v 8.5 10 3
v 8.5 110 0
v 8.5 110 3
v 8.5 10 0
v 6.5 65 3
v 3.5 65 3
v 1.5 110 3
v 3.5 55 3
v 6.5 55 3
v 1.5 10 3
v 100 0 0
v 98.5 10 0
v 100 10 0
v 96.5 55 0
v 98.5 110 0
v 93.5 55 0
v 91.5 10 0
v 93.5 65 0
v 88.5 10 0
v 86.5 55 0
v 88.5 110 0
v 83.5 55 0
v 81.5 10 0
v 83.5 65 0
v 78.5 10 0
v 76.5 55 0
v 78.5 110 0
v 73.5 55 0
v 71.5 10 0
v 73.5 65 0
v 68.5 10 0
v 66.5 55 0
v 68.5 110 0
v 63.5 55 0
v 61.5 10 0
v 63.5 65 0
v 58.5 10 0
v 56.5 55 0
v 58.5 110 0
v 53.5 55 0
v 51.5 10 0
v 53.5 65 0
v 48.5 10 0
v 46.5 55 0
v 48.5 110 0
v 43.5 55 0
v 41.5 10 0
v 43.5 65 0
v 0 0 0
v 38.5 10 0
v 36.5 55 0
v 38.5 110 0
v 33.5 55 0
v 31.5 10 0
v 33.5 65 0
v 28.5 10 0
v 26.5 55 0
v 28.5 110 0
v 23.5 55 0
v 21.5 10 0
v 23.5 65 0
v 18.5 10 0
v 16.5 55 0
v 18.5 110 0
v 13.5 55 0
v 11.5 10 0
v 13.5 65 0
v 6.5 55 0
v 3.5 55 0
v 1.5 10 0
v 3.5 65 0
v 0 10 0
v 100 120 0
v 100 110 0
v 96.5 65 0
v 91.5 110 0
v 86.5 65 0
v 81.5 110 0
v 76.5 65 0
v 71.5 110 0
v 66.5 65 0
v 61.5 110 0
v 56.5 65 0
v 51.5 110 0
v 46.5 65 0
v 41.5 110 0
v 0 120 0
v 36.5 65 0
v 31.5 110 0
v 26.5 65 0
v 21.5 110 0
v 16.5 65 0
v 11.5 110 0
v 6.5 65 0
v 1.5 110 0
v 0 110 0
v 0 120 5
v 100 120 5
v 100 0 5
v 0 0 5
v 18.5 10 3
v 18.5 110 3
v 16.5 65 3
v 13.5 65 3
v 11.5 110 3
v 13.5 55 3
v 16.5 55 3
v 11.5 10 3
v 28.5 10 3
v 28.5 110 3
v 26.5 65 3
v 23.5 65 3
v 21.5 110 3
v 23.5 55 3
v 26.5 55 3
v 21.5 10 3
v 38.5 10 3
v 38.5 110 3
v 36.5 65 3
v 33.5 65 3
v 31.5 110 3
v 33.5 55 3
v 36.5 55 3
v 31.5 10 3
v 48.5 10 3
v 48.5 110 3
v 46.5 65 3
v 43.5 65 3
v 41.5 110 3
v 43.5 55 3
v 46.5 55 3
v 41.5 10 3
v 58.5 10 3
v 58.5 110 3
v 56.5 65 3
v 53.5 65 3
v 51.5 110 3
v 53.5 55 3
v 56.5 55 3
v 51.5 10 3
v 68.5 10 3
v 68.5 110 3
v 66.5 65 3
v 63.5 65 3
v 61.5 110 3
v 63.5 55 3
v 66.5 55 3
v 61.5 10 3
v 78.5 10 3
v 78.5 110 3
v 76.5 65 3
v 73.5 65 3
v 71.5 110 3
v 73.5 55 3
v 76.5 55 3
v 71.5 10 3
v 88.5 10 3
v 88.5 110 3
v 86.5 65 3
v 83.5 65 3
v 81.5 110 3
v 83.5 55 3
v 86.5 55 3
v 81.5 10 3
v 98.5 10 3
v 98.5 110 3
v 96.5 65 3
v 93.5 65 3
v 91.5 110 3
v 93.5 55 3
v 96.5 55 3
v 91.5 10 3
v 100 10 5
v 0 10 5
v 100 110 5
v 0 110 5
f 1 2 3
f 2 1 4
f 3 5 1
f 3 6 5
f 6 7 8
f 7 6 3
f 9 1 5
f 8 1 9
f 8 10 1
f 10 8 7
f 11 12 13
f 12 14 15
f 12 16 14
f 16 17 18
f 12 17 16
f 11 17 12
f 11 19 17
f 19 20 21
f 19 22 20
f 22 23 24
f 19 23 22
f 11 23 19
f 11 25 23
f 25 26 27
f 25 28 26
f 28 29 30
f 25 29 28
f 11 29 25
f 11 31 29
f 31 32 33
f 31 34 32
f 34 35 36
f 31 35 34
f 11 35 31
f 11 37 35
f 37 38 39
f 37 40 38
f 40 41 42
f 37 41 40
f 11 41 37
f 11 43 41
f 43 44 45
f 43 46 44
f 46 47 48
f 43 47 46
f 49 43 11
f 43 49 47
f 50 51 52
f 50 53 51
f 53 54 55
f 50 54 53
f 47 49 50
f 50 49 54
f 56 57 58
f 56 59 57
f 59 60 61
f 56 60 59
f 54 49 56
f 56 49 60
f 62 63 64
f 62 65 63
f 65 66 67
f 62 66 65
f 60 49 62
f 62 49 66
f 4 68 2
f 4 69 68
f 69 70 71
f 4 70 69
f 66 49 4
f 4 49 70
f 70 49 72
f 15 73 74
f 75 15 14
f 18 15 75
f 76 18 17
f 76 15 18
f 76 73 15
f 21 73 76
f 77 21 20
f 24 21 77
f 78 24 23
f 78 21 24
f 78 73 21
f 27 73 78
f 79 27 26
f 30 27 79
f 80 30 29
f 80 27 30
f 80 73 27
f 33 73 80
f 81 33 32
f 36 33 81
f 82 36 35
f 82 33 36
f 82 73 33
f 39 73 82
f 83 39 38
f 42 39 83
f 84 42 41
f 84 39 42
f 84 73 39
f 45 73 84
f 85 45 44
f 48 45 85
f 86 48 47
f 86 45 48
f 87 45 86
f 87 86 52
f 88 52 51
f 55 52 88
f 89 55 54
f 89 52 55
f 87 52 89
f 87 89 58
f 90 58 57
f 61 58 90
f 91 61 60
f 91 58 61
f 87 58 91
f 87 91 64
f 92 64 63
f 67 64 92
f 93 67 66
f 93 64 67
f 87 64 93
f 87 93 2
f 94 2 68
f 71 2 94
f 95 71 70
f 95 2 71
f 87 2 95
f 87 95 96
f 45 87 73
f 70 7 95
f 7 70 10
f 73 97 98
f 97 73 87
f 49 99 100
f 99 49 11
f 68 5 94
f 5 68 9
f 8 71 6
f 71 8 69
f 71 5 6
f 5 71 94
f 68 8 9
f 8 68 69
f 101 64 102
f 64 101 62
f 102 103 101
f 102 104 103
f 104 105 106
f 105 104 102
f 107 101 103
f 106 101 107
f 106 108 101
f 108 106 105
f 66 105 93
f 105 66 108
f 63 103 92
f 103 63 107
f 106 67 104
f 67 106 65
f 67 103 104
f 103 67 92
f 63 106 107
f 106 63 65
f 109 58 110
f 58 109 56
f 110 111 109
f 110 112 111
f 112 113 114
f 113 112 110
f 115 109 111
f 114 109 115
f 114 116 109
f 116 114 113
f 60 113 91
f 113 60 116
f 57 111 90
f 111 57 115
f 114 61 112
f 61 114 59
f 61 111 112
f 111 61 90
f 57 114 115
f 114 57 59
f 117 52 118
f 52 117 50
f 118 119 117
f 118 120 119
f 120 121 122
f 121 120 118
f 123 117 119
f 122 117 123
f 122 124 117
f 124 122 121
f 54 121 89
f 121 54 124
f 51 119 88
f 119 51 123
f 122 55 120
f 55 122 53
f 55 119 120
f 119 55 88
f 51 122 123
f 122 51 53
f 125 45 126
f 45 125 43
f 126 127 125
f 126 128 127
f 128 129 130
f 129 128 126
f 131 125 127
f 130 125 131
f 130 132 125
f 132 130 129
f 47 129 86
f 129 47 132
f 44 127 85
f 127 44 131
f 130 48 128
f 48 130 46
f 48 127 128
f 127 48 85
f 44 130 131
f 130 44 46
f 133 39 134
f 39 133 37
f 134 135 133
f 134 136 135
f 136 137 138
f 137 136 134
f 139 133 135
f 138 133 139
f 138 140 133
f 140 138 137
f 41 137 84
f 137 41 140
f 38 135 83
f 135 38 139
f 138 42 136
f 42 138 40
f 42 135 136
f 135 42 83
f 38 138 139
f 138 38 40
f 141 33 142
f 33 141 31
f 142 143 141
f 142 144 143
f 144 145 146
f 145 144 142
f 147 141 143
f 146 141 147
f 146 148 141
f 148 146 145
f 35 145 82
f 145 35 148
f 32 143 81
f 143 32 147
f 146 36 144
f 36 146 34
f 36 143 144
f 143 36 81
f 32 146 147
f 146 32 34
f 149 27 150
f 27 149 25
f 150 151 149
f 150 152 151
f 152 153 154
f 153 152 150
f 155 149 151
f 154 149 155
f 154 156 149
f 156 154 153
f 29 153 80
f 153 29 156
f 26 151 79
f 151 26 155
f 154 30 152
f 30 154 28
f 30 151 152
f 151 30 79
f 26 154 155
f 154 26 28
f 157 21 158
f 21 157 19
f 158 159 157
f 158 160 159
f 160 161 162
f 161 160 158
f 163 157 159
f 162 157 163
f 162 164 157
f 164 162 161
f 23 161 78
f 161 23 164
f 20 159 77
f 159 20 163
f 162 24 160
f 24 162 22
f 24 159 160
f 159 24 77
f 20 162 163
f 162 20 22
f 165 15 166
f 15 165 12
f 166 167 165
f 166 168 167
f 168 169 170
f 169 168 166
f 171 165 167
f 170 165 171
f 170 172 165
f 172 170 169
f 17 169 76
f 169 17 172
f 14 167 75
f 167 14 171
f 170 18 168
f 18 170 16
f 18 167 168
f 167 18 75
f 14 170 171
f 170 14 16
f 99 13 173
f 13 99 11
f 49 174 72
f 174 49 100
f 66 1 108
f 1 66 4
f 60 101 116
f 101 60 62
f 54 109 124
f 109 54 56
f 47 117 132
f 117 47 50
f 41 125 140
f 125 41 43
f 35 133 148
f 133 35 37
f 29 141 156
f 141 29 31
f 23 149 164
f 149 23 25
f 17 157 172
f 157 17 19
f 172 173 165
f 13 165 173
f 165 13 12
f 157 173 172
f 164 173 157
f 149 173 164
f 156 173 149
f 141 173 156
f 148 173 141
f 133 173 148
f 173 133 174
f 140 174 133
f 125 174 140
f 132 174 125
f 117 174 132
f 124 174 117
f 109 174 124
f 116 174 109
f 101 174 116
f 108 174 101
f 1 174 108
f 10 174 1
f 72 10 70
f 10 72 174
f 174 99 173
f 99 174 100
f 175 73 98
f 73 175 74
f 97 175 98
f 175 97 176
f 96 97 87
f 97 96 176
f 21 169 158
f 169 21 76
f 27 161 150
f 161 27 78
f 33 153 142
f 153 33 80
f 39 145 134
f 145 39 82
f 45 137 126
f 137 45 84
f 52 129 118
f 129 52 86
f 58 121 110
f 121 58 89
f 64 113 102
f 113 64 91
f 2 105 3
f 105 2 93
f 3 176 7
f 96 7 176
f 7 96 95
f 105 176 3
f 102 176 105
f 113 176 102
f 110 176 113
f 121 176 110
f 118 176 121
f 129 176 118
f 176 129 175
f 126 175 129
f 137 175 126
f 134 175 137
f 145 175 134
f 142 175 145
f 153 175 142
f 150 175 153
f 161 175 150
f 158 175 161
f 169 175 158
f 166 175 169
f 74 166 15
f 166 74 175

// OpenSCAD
/*File Info--------------------------------------------------------------------
File Name: CombModul.scad
Project Name: OpenHardware LOOM - OHLOOM
License: Attribution-ShareAlike 4.0 International (CC BY-SA 4.0) 
Name: Jens Meisner
Date: 08/01/20
Desc:  This file is part of the OHLOOM Project. Original design by Oliver Slueter, who made all wooden parts without a CNC Router. https://wiki.opensourceecology.de/Open_Hardware-Webstuhl_%E2%80%93_OHLOOM
Usage: 
./OHLoom_Documentation/Assembly_Guide/AssemblyGuide.md
./OHLoom_Documentation/User_Guide/OHLOOM_UserGuide.md
/*
/*Modifications------------------------------------------------------------
New File Name: Enter name, if it has changed
Name: Enter name of author
Date: 
Desc: Describe changes of the original design
*/
//Please continue with any fur enter any further modification here
//--------------------------------------------------------------------------------

gap=3;
tooth=7;
height=3;
tool_size=6;
distance=tooth+gap;
count=round(100/(tooth+gap));


module linear_array(count,distance)
{
    for(i=[0:1:count-1])
    {
        translate([distance*i,0,0])
        children();
    }
}

union()
{
    cube([100,10,height]);
    cube([100,10,tool_size-1]);
    translate([0,110,0])
    cube([100,10,tool_size-1]);
    translate([0,110,0])
    cube([100,10,height]);
    translate([gap/2,0,0])
    linear_array(count,distance)
    difference()
    {
        cube([tooth,120,height]);
        translate([tooth/2-gap/2,55,0])
        cube([gap,10,height]);
    }
}
